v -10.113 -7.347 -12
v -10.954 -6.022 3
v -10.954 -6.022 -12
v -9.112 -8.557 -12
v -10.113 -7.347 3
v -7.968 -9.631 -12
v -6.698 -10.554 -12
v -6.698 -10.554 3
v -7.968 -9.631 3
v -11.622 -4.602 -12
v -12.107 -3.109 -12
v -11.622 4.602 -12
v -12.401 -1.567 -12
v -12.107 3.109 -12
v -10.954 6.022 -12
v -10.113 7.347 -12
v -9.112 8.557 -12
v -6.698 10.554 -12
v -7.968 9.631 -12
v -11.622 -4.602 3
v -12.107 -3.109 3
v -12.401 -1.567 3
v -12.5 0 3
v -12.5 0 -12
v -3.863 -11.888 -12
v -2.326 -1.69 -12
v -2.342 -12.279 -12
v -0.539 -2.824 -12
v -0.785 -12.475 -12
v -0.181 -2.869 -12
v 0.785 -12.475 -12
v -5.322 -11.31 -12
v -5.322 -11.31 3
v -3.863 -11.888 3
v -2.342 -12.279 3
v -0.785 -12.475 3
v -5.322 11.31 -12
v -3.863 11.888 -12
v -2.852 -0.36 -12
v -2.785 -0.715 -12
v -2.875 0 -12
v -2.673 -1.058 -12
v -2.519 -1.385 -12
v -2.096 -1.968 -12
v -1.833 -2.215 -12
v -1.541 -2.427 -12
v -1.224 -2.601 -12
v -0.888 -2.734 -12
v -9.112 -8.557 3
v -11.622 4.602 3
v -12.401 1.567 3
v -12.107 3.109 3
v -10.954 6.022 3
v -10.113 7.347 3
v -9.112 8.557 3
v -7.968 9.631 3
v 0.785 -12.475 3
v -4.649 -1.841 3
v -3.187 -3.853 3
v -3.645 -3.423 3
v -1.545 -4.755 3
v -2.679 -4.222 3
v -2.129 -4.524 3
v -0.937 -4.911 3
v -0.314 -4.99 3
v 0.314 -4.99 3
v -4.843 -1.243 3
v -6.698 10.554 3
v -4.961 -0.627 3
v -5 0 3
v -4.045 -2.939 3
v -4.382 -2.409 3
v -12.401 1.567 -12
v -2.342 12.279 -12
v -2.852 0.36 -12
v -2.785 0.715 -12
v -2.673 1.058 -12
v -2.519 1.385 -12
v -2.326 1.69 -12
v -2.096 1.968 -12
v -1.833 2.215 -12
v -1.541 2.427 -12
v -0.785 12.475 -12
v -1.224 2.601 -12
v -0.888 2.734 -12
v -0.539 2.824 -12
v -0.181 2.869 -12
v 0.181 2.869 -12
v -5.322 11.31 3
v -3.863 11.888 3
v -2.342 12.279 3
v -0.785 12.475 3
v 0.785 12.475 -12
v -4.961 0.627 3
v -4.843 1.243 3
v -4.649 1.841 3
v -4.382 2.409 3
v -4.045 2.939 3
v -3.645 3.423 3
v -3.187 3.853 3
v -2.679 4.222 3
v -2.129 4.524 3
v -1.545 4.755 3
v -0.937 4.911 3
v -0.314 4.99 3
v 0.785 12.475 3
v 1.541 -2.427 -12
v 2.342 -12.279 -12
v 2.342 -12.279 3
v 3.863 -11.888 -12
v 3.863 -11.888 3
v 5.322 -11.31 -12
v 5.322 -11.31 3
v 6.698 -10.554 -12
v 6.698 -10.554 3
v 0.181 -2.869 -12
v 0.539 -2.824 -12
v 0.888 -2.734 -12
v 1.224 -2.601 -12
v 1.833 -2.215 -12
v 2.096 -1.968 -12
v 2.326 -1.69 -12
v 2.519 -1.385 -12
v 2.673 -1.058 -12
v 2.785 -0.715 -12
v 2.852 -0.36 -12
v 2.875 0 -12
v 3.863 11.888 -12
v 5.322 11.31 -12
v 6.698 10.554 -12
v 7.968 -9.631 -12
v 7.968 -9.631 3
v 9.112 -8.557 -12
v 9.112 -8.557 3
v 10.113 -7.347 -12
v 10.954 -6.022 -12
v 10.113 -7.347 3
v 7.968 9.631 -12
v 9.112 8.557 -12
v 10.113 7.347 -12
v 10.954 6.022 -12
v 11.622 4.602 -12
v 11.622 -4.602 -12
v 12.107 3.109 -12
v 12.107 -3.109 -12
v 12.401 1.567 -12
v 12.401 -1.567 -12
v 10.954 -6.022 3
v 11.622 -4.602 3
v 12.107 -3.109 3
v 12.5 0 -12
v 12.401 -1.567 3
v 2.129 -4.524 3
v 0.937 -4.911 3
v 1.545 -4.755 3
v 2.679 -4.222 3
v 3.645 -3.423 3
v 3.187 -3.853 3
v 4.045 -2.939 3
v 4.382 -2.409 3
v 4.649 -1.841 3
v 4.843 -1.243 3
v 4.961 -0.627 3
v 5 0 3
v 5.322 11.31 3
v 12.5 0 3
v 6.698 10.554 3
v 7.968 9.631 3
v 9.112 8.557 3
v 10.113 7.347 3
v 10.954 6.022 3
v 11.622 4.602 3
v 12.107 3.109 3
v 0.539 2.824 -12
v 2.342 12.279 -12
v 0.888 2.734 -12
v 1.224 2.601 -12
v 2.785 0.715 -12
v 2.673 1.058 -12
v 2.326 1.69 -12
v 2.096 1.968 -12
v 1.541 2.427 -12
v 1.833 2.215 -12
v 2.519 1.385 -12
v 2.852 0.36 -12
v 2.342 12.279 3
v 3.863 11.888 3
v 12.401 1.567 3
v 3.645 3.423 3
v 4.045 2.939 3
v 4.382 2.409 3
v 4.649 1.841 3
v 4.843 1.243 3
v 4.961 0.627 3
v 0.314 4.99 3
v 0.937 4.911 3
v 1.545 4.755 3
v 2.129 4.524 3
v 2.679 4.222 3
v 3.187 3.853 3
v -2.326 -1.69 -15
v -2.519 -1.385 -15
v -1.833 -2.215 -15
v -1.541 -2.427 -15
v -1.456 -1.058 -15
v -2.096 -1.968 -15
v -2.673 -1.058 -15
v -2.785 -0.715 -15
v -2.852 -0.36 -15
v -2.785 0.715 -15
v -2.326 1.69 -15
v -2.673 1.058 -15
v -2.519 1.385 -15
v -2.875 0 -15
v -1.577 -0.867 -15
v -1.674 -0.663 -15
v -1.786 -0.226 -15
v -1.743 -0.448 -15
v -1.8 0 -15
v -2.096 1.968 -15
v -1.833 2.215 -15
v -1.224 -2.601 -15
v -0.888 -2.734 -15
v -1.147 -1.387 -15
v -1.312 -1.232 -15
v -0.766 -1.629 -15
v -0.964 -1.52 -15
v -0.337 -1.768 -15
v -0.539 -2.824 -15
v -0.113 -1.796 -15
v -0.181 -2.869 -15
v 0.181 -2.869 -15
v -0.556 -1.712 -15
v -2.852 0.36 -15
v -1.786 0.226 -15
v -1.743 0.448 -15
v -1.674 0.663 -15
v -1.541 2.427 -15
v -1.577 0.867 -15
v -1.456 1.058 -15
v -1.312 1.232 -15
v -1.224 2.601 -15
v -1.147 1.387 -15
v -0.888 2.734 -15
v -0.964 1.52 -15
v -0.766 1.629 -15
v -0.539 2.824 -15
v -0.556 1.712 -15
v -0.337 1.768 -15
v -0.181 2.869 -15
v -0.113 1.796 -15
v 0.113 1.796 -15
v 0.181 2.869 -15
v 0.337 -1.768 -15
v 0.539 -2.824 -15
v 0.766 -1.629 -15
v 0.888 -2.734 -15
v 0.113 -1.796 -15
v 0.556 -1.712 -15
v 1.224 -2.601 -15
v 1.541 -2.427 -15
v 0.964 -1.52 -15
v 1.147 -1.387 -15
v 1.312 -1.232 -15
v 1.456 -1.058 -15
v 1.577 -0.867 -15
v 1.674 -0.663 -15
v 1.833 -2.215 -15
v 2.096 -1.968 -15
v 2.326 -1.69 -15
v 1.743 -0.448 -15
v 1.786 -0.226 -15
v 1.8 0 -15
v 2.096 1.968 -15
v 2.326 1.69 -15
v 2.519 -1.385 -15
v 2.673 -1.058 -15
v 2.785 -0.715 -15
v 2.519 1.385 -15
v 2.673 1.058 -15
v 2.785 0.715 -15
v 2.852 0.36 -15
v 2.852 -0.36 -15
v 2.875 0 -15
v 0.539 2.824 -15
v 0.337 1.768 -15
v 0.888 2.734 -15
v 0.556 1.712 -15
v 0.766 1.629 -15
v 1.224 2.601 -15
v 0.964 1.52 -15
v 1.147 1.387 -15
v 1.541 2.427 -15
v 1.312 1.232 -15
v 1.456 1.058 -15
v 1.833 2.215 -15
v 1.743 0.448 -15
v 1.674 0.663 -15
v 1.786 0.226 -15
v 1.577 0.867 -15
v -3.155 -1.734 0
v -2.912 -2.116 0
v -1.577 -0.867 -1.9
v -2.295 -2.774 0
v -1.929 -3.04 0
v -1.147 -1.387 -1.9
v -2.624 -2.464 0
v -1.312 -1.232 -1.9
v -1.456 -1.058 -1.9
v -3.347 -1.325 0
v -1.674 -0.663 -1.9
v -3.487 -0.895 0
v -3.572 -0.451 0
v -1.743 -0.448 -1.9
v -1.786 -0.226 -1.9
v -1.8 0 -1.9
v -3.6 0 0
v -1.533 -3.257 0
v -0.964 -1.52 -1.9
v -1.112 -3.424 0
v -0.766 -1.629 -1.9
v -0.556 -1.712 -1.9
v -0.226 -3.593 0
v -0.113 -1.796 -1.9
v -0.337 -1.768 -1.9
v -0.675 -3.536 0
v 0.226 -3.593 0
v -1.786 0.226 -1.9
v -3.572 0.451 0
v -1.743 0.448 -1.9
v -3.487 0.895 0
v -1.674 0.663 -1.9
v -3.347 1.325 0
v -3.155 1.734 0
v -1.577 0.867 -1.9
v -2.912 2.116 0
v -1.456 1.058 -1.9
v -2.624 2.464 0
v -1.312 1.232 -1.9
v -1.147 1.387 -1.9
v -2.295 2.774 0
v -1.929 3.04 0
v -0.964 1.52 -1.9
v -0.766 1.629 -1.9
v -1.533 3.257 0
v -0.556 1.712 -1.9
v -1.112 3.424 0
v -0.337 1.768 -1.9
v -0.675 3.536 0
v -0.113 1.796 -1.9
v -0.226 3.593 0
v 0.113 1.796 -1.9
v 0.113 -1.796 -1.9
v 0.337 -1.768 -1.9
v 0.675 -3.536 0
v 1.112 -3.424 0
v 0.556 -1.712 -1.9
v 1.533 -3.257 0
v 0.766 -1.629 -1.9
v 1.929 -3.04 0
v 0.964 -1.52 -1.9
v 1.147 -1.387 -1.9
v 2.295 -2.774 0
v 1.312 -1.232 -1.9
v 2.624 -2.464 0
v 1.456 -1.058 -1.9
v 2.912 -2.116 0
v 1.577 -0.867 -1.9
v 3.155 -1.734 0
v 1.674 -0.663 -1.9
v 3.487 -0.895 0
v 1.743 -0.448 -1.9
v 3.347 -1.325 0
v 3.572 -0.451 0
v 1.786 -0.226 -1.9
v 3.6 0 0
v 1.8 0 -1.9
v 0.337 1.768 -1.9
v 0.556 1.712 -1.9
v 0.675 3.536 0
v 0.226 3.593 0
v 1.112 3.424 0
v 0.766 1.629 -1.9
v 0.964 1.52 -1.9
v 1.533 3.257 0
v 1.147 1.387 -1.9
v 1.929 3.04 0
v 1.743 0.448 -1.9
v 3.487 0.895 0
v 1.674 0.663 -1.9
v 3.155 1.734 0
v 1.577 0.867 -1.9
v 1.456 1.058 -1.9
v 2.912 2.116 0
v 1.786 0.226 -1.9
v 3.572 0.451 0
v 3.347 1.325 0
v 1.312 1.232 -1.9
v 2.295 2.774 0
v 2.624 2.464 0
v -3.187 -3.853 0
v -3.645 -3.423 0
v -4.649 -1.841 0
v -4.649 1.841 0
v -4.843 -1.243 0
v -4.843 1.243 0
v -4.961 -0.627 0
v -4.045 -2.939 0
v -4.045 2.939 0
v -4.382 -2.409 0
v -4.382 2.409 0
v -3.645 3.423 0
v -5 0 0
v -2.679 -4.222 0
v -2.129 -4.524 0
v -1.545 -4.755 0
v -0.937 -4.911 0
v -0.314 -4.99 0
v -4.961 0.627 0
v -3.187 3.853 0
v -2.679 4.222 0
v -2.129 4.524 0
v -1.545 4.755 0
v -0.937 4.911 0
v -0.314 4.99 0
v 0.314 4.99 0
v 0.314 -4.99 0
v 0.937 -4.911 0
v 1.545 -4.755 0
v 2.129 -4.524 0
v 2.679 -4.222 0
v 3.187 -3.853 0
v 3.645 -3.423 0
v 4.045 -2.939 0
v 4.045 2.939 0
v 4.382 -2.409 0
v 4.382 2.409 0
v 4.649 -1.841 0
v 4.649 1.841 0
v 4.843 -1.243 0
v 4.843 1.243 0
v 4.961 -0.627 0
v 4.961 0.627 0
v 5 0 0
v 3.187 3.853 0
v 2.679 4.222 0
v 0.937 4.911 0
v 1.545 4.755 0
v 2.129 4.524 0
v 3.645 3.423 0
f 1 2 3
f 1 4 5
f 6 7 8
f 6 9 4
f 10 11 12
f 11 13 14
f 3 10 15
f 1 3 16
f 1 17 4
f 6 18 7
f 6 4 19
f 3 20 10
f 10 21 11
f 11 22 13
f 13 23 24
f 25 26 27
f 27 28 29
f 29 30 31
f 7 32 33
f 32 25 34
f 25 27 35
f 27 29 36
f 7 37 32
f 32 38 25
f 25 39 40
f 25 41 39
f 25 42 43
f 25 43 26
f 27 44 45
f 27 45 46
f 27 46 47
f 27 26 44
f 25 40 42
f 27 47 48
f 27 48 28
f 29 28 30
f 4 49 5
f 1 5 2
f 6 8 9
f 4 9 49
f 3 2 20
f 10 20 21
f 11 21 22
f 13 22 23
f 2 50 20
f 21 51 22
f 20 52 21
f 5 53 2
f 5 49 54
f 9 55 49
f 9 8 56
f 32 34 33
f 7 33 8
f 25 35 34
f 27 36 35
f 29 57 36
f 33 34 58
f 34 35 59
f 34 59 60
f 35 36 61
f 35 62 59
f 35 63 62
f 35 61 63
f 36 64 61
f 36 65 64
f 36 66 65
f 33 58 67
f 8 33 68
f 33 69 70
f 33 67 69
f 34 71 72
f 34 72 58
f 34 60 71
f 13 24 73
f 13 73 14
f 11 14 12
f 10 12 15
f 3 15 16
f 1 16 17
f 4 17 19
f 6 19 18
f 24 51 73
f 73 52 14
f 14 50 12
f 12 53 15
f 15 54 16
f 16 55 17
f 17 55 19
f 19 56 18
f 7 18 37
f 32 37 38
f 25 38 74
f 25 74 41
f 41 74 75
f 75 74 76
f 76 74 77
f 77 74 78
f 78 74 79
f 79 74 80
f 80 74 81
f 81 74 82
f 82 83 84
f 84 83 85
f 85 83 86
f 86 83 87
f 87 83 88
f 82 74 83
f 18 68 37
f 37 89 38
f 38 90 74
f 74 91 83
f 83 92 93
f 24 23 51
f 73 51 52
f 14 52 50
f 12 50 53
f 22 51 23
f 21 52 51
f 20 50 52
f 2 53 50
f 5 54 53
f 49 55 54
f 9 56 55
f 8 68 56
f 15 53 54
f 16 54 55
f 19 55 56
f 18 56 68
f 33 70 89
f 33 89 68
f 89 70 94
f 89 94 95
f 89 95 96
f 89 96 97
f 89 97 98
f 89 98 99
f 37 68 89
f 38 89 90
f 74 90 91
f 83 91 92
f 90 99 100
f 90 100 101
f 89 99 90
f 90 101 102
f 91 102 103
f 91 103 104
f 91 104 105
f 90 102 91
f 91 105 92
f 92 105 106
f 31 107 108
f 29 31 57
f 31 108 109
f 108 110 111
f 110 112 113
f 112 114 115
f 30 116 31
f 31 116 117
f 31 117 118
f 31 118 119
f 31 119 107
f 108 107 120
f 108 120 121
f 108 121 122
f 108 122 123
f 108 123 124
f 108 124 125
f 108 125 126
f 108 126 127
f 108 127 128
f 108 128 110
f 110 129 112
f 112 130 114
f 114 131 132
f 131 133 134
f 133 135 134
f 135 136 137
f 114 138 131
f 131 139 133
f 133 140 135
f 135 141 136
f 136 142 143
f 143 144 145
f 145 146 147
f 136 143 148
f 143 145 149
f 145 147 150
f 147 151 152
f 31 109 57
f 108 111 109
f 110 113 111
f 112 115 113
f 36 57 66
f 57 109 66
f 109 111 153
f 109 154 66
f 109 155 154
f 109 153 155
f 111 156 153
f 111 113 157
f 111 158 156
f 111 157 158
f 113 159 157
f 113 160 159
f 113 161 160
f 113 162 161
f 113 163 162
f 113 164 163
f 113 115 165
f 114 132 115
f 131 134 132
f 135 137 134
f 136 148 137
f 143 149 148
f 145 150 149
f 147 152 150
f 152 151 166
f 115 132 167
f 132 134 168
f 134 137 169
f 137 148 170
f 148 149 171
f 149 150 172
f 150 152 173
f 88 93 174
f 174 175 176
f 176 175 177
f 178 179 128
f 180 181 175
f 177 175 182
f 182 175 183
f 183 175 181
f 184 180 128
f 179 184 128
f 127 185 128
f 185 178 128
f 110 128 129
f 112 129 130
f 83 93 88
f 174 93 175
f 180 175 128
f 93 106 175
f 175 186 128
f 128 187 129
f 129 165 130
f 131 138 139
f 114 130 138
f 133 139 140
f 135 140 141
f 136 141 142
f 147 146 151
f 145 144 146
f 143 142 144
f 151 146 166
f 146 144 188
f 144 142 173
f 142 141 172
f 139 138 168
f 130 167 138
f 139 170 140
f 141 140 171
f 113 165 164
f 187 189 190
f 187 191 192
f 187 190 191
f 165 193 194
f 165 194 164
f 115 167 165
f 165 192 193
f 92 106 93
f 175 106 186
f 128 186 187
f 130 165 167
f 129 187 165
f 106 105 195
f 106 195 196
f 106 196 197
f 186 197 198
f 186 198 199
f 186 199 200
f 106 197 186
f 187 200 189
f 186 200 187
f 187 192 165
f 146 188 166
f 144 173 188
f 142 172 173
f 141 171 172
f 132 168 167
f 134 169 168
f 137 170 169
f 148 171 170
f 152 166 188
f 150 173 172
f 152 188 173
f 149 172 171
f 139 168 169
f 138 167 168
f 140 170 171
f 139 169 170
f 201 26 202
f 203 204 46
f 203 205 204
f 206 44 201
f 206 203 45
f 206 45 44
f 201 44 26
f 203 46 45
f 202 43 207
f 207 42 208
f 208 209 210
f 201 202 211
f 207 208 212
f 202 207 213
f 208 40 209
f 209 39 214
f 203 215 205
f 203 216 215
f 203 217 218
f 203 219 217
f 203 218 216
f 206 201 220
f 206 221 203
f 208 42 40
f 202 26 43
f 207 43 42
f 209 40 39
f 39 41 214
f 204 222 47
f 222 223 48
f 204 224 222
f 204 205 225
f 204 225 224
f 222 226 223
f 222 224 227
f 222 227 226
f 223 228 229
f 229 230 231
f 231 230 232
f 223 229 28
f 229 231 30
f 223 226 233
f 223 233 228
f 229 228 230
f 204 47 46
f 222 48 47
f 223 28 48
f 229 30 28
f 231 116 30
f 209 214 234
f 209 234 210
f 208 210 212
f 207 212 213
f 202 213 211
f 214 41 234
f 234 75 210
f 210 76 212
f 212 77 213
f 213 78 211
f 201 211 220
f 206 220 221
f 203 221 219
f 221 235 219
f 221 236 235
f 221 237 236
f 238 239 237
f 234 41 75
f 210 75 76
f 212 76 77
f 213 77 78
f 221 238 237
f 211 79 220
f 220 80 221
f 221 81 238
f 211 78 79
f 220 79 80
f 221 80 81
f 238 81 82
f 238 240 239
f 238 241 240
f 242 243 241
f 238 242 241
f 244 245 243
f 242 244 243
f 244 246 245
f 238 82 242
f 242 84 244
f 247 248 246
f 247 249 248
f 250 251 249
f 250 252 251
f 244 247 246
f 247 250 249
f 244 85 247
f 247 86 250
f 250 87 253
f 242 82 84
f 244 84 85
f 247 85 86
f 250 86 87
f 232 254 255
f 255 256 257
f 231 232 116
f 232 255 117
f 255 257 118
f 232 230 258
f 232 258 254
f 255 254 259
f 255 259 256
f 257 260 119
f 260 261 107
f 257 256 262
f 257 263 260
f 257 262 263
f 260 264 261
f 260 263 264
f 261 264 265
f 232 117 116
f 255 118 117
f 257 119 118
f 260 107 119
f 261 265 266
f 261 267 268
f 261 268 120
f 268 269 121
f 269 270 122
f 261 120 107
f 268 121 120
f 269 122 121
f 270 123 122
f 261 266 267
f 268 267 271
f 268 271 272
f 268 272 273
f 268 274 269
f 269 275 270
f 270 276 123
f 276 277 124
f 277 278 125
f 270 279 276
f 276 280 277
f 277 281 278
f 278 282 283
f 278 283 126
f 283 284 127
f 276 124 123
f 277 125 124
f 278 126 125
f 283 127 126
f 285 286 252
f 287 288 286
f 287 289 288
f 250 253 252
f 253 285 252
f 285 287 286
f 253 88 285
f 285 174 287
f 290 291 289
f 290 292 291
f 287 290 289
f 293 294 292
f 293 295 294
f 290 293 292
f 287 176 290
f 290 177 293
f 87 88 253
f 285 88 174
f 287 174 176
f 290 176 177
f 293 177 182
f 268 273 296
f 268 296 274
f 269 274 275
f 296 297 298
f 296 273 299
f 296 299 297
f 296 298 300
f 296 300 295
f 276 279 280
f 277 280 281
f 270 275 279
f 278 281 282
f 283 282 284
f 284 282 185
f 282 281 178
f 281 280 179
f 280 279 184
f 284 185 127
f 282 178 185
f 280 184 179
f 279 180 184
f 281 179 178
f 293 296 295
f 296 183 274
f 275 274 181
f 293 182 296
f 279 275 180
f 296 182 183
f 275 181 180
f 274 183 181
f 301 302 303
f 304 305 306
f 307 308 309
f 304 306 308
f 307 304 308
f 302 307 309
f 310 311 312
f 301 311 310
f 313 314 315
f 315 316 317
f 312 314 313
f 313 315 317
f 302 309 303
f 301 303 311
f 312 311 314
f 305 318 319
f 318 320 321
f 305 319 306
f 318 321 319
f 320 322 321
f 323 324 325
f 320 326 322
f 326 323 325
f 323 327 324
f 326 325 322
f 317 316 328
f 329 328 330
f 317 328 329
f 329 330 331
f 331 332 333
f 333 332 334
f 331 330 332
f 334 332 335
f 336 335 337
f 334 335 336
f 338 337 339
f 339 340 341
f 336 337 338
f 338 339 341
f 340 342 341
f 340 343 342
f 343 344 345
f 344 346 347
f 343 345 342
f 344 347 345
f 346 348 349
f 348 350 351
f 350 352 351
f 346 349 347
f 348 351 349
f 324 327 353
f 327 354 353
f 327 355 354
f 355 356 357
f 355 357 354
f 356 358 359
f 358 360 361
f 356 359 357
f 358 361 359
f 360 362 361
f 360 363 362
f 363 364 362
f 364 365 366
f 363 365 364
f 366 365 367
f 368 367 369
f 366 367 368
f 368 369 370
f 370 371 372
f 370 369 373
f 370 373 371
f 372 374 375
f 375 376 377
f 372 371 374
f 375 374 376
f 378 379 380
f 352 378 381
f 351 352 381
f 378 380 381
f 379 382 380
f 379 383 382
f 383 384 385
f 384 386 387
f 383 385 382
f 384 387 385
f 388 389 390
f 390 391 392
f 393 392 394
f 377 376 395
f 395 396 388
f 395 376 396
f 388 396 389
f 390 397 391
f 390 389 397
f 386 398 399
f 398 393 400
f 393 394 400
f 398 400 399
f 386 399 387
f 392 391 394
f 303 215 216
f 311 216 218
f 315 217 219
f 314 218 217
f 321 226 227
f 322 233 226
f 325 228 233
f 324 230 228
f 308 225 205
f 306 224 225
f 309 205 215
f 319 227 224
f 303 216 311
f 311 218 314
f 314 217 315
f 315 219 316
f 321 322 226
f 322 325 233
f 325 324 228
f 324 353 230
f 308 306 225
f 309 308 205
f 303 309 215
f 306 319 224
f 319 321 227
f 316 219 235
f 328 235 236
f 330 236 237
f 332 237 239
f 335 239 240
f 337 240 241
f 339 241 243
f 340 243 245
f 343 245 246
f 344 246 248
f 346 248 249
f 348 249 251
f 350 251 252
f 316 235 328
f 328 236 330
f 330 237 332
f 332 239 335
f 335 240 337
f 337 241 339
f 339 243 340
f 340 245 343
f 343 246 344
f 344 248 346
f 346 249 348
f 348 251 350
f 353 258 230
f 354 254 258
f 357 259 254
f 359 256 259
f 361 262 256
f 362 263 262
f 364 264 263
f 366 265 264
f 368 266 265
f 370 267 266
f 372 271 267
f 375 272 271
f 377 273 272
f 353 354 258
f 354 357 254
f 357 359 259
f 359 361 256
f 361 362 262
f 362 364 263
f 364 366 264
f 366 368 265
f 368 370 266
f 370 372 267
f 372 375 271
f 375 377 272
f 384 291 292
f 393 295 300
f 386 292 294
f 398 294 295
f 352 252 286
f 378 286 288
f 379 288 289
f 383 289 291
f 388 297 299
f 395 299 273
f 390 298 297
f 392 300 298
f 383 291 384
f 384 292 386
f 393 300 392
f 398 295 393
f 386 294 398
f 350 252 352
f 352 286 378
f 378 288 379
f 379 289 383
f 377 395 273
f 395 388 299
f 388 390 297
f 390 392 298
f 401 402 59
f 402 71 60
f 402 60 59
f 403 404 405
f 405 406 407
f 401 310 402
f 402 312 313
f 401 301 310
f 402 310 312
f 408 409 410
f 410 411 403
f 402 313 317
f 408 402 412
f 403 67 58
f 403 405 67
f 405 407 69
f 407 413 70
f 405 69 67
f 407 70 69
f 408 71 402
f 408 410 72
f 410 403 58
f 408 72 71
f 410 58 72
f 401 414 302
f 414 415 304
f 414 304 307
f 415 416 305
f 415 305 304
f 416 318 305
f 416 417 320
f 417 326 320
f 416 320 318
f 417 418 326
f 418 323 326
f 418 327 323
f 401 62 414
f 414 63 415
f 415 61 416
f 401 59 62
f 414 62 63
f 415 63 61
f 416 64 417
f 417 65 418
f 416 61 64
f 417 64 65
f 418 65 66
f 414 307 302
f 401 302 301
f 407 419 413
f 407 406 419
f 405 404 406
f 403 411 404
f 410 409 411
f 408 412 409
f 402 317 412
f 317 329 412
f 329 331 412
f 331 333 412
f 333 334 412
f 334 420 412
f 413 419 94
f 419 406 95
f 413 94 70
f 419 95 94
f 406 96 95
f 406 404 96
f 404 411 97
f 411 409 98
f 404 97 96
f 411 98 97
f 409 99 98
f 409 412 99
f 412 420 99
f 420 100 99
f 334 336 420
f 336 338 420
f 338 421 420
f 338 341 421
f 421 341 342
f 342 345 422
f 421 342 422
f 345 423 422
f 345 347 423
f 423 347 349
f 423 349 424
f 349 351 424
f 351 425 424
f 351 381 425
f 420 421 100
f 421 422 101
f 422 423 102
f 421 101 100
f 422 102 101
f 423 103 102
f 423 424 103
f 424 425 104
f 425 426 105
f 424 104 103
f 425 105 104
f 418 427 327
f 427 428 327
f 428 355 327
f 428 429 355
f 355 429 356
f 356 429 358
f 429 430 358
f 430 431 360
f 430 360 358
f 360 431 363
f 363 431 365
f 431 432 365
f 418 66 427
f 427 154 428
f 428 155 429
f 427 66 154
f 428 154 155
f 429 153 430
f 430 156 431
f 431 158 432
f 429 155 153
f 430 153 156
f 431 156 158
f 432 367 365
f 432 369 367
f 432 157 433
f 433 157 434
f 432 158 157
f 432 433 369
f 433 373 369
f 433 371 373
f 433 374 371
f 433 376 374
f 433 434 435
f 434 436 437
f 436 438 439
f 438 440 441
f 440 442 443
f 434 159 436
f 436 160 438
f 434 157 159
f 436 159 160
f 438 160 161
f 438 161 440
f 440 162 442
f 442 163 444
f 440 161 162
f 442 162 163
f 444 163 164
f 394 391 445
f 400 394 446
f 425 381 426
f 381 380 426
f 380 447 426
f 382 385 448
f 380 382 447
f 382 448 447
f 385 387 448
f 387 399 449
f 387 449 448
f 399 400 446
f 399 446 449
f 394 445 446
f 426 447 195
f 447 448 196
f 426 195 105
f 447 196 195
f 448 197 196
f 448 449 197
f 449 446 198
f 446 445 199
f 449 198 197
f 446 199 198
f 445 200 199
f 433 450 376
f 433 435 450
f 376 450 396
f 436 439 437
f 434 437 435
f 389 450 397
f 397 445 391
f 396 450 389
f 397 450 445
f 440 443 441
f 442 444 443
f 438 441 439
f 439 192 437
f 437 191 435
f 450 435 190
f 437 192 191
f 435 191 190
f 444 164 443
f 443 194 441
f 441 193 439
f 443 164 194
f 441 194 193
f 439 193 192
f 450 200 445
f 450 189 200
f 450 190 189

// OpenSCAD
$fn = 50;

difference() {
	union() {
		translate(v = [0, 0, -12.0]) {
			cylinder(h = 15, r = 12.5);
		}
		#translate(v = [0, 0, -15.0]) {
			cylinder(h = 15, r = 2.875);
		}
	}
	union() {
		translate(v = [0, 0, 0]) {
			rotate(a = [0, 0, 0]) {
				difference() {
					union() {
						translate(v = [0, 0, -15.0]) {
							cylinder(h = 15, r = 1.5);
						}
						translate(v = [0, 0, -1.9]) {
							cylinder(h = 1.9, r1 = 1.8, r2 = 3.6);
						}
						translate(v = [0, 0, -15.0]) {
							cylinder(h = 15, r = 1.8);
						}
						translate(v = [0, 0, -15.0]) {
							cylinder(h = 15, r = 1.5);
						}
					}
					union();
				}
			}
		}
		#cylinder(h = 3, r = 5.0);
	}
}
